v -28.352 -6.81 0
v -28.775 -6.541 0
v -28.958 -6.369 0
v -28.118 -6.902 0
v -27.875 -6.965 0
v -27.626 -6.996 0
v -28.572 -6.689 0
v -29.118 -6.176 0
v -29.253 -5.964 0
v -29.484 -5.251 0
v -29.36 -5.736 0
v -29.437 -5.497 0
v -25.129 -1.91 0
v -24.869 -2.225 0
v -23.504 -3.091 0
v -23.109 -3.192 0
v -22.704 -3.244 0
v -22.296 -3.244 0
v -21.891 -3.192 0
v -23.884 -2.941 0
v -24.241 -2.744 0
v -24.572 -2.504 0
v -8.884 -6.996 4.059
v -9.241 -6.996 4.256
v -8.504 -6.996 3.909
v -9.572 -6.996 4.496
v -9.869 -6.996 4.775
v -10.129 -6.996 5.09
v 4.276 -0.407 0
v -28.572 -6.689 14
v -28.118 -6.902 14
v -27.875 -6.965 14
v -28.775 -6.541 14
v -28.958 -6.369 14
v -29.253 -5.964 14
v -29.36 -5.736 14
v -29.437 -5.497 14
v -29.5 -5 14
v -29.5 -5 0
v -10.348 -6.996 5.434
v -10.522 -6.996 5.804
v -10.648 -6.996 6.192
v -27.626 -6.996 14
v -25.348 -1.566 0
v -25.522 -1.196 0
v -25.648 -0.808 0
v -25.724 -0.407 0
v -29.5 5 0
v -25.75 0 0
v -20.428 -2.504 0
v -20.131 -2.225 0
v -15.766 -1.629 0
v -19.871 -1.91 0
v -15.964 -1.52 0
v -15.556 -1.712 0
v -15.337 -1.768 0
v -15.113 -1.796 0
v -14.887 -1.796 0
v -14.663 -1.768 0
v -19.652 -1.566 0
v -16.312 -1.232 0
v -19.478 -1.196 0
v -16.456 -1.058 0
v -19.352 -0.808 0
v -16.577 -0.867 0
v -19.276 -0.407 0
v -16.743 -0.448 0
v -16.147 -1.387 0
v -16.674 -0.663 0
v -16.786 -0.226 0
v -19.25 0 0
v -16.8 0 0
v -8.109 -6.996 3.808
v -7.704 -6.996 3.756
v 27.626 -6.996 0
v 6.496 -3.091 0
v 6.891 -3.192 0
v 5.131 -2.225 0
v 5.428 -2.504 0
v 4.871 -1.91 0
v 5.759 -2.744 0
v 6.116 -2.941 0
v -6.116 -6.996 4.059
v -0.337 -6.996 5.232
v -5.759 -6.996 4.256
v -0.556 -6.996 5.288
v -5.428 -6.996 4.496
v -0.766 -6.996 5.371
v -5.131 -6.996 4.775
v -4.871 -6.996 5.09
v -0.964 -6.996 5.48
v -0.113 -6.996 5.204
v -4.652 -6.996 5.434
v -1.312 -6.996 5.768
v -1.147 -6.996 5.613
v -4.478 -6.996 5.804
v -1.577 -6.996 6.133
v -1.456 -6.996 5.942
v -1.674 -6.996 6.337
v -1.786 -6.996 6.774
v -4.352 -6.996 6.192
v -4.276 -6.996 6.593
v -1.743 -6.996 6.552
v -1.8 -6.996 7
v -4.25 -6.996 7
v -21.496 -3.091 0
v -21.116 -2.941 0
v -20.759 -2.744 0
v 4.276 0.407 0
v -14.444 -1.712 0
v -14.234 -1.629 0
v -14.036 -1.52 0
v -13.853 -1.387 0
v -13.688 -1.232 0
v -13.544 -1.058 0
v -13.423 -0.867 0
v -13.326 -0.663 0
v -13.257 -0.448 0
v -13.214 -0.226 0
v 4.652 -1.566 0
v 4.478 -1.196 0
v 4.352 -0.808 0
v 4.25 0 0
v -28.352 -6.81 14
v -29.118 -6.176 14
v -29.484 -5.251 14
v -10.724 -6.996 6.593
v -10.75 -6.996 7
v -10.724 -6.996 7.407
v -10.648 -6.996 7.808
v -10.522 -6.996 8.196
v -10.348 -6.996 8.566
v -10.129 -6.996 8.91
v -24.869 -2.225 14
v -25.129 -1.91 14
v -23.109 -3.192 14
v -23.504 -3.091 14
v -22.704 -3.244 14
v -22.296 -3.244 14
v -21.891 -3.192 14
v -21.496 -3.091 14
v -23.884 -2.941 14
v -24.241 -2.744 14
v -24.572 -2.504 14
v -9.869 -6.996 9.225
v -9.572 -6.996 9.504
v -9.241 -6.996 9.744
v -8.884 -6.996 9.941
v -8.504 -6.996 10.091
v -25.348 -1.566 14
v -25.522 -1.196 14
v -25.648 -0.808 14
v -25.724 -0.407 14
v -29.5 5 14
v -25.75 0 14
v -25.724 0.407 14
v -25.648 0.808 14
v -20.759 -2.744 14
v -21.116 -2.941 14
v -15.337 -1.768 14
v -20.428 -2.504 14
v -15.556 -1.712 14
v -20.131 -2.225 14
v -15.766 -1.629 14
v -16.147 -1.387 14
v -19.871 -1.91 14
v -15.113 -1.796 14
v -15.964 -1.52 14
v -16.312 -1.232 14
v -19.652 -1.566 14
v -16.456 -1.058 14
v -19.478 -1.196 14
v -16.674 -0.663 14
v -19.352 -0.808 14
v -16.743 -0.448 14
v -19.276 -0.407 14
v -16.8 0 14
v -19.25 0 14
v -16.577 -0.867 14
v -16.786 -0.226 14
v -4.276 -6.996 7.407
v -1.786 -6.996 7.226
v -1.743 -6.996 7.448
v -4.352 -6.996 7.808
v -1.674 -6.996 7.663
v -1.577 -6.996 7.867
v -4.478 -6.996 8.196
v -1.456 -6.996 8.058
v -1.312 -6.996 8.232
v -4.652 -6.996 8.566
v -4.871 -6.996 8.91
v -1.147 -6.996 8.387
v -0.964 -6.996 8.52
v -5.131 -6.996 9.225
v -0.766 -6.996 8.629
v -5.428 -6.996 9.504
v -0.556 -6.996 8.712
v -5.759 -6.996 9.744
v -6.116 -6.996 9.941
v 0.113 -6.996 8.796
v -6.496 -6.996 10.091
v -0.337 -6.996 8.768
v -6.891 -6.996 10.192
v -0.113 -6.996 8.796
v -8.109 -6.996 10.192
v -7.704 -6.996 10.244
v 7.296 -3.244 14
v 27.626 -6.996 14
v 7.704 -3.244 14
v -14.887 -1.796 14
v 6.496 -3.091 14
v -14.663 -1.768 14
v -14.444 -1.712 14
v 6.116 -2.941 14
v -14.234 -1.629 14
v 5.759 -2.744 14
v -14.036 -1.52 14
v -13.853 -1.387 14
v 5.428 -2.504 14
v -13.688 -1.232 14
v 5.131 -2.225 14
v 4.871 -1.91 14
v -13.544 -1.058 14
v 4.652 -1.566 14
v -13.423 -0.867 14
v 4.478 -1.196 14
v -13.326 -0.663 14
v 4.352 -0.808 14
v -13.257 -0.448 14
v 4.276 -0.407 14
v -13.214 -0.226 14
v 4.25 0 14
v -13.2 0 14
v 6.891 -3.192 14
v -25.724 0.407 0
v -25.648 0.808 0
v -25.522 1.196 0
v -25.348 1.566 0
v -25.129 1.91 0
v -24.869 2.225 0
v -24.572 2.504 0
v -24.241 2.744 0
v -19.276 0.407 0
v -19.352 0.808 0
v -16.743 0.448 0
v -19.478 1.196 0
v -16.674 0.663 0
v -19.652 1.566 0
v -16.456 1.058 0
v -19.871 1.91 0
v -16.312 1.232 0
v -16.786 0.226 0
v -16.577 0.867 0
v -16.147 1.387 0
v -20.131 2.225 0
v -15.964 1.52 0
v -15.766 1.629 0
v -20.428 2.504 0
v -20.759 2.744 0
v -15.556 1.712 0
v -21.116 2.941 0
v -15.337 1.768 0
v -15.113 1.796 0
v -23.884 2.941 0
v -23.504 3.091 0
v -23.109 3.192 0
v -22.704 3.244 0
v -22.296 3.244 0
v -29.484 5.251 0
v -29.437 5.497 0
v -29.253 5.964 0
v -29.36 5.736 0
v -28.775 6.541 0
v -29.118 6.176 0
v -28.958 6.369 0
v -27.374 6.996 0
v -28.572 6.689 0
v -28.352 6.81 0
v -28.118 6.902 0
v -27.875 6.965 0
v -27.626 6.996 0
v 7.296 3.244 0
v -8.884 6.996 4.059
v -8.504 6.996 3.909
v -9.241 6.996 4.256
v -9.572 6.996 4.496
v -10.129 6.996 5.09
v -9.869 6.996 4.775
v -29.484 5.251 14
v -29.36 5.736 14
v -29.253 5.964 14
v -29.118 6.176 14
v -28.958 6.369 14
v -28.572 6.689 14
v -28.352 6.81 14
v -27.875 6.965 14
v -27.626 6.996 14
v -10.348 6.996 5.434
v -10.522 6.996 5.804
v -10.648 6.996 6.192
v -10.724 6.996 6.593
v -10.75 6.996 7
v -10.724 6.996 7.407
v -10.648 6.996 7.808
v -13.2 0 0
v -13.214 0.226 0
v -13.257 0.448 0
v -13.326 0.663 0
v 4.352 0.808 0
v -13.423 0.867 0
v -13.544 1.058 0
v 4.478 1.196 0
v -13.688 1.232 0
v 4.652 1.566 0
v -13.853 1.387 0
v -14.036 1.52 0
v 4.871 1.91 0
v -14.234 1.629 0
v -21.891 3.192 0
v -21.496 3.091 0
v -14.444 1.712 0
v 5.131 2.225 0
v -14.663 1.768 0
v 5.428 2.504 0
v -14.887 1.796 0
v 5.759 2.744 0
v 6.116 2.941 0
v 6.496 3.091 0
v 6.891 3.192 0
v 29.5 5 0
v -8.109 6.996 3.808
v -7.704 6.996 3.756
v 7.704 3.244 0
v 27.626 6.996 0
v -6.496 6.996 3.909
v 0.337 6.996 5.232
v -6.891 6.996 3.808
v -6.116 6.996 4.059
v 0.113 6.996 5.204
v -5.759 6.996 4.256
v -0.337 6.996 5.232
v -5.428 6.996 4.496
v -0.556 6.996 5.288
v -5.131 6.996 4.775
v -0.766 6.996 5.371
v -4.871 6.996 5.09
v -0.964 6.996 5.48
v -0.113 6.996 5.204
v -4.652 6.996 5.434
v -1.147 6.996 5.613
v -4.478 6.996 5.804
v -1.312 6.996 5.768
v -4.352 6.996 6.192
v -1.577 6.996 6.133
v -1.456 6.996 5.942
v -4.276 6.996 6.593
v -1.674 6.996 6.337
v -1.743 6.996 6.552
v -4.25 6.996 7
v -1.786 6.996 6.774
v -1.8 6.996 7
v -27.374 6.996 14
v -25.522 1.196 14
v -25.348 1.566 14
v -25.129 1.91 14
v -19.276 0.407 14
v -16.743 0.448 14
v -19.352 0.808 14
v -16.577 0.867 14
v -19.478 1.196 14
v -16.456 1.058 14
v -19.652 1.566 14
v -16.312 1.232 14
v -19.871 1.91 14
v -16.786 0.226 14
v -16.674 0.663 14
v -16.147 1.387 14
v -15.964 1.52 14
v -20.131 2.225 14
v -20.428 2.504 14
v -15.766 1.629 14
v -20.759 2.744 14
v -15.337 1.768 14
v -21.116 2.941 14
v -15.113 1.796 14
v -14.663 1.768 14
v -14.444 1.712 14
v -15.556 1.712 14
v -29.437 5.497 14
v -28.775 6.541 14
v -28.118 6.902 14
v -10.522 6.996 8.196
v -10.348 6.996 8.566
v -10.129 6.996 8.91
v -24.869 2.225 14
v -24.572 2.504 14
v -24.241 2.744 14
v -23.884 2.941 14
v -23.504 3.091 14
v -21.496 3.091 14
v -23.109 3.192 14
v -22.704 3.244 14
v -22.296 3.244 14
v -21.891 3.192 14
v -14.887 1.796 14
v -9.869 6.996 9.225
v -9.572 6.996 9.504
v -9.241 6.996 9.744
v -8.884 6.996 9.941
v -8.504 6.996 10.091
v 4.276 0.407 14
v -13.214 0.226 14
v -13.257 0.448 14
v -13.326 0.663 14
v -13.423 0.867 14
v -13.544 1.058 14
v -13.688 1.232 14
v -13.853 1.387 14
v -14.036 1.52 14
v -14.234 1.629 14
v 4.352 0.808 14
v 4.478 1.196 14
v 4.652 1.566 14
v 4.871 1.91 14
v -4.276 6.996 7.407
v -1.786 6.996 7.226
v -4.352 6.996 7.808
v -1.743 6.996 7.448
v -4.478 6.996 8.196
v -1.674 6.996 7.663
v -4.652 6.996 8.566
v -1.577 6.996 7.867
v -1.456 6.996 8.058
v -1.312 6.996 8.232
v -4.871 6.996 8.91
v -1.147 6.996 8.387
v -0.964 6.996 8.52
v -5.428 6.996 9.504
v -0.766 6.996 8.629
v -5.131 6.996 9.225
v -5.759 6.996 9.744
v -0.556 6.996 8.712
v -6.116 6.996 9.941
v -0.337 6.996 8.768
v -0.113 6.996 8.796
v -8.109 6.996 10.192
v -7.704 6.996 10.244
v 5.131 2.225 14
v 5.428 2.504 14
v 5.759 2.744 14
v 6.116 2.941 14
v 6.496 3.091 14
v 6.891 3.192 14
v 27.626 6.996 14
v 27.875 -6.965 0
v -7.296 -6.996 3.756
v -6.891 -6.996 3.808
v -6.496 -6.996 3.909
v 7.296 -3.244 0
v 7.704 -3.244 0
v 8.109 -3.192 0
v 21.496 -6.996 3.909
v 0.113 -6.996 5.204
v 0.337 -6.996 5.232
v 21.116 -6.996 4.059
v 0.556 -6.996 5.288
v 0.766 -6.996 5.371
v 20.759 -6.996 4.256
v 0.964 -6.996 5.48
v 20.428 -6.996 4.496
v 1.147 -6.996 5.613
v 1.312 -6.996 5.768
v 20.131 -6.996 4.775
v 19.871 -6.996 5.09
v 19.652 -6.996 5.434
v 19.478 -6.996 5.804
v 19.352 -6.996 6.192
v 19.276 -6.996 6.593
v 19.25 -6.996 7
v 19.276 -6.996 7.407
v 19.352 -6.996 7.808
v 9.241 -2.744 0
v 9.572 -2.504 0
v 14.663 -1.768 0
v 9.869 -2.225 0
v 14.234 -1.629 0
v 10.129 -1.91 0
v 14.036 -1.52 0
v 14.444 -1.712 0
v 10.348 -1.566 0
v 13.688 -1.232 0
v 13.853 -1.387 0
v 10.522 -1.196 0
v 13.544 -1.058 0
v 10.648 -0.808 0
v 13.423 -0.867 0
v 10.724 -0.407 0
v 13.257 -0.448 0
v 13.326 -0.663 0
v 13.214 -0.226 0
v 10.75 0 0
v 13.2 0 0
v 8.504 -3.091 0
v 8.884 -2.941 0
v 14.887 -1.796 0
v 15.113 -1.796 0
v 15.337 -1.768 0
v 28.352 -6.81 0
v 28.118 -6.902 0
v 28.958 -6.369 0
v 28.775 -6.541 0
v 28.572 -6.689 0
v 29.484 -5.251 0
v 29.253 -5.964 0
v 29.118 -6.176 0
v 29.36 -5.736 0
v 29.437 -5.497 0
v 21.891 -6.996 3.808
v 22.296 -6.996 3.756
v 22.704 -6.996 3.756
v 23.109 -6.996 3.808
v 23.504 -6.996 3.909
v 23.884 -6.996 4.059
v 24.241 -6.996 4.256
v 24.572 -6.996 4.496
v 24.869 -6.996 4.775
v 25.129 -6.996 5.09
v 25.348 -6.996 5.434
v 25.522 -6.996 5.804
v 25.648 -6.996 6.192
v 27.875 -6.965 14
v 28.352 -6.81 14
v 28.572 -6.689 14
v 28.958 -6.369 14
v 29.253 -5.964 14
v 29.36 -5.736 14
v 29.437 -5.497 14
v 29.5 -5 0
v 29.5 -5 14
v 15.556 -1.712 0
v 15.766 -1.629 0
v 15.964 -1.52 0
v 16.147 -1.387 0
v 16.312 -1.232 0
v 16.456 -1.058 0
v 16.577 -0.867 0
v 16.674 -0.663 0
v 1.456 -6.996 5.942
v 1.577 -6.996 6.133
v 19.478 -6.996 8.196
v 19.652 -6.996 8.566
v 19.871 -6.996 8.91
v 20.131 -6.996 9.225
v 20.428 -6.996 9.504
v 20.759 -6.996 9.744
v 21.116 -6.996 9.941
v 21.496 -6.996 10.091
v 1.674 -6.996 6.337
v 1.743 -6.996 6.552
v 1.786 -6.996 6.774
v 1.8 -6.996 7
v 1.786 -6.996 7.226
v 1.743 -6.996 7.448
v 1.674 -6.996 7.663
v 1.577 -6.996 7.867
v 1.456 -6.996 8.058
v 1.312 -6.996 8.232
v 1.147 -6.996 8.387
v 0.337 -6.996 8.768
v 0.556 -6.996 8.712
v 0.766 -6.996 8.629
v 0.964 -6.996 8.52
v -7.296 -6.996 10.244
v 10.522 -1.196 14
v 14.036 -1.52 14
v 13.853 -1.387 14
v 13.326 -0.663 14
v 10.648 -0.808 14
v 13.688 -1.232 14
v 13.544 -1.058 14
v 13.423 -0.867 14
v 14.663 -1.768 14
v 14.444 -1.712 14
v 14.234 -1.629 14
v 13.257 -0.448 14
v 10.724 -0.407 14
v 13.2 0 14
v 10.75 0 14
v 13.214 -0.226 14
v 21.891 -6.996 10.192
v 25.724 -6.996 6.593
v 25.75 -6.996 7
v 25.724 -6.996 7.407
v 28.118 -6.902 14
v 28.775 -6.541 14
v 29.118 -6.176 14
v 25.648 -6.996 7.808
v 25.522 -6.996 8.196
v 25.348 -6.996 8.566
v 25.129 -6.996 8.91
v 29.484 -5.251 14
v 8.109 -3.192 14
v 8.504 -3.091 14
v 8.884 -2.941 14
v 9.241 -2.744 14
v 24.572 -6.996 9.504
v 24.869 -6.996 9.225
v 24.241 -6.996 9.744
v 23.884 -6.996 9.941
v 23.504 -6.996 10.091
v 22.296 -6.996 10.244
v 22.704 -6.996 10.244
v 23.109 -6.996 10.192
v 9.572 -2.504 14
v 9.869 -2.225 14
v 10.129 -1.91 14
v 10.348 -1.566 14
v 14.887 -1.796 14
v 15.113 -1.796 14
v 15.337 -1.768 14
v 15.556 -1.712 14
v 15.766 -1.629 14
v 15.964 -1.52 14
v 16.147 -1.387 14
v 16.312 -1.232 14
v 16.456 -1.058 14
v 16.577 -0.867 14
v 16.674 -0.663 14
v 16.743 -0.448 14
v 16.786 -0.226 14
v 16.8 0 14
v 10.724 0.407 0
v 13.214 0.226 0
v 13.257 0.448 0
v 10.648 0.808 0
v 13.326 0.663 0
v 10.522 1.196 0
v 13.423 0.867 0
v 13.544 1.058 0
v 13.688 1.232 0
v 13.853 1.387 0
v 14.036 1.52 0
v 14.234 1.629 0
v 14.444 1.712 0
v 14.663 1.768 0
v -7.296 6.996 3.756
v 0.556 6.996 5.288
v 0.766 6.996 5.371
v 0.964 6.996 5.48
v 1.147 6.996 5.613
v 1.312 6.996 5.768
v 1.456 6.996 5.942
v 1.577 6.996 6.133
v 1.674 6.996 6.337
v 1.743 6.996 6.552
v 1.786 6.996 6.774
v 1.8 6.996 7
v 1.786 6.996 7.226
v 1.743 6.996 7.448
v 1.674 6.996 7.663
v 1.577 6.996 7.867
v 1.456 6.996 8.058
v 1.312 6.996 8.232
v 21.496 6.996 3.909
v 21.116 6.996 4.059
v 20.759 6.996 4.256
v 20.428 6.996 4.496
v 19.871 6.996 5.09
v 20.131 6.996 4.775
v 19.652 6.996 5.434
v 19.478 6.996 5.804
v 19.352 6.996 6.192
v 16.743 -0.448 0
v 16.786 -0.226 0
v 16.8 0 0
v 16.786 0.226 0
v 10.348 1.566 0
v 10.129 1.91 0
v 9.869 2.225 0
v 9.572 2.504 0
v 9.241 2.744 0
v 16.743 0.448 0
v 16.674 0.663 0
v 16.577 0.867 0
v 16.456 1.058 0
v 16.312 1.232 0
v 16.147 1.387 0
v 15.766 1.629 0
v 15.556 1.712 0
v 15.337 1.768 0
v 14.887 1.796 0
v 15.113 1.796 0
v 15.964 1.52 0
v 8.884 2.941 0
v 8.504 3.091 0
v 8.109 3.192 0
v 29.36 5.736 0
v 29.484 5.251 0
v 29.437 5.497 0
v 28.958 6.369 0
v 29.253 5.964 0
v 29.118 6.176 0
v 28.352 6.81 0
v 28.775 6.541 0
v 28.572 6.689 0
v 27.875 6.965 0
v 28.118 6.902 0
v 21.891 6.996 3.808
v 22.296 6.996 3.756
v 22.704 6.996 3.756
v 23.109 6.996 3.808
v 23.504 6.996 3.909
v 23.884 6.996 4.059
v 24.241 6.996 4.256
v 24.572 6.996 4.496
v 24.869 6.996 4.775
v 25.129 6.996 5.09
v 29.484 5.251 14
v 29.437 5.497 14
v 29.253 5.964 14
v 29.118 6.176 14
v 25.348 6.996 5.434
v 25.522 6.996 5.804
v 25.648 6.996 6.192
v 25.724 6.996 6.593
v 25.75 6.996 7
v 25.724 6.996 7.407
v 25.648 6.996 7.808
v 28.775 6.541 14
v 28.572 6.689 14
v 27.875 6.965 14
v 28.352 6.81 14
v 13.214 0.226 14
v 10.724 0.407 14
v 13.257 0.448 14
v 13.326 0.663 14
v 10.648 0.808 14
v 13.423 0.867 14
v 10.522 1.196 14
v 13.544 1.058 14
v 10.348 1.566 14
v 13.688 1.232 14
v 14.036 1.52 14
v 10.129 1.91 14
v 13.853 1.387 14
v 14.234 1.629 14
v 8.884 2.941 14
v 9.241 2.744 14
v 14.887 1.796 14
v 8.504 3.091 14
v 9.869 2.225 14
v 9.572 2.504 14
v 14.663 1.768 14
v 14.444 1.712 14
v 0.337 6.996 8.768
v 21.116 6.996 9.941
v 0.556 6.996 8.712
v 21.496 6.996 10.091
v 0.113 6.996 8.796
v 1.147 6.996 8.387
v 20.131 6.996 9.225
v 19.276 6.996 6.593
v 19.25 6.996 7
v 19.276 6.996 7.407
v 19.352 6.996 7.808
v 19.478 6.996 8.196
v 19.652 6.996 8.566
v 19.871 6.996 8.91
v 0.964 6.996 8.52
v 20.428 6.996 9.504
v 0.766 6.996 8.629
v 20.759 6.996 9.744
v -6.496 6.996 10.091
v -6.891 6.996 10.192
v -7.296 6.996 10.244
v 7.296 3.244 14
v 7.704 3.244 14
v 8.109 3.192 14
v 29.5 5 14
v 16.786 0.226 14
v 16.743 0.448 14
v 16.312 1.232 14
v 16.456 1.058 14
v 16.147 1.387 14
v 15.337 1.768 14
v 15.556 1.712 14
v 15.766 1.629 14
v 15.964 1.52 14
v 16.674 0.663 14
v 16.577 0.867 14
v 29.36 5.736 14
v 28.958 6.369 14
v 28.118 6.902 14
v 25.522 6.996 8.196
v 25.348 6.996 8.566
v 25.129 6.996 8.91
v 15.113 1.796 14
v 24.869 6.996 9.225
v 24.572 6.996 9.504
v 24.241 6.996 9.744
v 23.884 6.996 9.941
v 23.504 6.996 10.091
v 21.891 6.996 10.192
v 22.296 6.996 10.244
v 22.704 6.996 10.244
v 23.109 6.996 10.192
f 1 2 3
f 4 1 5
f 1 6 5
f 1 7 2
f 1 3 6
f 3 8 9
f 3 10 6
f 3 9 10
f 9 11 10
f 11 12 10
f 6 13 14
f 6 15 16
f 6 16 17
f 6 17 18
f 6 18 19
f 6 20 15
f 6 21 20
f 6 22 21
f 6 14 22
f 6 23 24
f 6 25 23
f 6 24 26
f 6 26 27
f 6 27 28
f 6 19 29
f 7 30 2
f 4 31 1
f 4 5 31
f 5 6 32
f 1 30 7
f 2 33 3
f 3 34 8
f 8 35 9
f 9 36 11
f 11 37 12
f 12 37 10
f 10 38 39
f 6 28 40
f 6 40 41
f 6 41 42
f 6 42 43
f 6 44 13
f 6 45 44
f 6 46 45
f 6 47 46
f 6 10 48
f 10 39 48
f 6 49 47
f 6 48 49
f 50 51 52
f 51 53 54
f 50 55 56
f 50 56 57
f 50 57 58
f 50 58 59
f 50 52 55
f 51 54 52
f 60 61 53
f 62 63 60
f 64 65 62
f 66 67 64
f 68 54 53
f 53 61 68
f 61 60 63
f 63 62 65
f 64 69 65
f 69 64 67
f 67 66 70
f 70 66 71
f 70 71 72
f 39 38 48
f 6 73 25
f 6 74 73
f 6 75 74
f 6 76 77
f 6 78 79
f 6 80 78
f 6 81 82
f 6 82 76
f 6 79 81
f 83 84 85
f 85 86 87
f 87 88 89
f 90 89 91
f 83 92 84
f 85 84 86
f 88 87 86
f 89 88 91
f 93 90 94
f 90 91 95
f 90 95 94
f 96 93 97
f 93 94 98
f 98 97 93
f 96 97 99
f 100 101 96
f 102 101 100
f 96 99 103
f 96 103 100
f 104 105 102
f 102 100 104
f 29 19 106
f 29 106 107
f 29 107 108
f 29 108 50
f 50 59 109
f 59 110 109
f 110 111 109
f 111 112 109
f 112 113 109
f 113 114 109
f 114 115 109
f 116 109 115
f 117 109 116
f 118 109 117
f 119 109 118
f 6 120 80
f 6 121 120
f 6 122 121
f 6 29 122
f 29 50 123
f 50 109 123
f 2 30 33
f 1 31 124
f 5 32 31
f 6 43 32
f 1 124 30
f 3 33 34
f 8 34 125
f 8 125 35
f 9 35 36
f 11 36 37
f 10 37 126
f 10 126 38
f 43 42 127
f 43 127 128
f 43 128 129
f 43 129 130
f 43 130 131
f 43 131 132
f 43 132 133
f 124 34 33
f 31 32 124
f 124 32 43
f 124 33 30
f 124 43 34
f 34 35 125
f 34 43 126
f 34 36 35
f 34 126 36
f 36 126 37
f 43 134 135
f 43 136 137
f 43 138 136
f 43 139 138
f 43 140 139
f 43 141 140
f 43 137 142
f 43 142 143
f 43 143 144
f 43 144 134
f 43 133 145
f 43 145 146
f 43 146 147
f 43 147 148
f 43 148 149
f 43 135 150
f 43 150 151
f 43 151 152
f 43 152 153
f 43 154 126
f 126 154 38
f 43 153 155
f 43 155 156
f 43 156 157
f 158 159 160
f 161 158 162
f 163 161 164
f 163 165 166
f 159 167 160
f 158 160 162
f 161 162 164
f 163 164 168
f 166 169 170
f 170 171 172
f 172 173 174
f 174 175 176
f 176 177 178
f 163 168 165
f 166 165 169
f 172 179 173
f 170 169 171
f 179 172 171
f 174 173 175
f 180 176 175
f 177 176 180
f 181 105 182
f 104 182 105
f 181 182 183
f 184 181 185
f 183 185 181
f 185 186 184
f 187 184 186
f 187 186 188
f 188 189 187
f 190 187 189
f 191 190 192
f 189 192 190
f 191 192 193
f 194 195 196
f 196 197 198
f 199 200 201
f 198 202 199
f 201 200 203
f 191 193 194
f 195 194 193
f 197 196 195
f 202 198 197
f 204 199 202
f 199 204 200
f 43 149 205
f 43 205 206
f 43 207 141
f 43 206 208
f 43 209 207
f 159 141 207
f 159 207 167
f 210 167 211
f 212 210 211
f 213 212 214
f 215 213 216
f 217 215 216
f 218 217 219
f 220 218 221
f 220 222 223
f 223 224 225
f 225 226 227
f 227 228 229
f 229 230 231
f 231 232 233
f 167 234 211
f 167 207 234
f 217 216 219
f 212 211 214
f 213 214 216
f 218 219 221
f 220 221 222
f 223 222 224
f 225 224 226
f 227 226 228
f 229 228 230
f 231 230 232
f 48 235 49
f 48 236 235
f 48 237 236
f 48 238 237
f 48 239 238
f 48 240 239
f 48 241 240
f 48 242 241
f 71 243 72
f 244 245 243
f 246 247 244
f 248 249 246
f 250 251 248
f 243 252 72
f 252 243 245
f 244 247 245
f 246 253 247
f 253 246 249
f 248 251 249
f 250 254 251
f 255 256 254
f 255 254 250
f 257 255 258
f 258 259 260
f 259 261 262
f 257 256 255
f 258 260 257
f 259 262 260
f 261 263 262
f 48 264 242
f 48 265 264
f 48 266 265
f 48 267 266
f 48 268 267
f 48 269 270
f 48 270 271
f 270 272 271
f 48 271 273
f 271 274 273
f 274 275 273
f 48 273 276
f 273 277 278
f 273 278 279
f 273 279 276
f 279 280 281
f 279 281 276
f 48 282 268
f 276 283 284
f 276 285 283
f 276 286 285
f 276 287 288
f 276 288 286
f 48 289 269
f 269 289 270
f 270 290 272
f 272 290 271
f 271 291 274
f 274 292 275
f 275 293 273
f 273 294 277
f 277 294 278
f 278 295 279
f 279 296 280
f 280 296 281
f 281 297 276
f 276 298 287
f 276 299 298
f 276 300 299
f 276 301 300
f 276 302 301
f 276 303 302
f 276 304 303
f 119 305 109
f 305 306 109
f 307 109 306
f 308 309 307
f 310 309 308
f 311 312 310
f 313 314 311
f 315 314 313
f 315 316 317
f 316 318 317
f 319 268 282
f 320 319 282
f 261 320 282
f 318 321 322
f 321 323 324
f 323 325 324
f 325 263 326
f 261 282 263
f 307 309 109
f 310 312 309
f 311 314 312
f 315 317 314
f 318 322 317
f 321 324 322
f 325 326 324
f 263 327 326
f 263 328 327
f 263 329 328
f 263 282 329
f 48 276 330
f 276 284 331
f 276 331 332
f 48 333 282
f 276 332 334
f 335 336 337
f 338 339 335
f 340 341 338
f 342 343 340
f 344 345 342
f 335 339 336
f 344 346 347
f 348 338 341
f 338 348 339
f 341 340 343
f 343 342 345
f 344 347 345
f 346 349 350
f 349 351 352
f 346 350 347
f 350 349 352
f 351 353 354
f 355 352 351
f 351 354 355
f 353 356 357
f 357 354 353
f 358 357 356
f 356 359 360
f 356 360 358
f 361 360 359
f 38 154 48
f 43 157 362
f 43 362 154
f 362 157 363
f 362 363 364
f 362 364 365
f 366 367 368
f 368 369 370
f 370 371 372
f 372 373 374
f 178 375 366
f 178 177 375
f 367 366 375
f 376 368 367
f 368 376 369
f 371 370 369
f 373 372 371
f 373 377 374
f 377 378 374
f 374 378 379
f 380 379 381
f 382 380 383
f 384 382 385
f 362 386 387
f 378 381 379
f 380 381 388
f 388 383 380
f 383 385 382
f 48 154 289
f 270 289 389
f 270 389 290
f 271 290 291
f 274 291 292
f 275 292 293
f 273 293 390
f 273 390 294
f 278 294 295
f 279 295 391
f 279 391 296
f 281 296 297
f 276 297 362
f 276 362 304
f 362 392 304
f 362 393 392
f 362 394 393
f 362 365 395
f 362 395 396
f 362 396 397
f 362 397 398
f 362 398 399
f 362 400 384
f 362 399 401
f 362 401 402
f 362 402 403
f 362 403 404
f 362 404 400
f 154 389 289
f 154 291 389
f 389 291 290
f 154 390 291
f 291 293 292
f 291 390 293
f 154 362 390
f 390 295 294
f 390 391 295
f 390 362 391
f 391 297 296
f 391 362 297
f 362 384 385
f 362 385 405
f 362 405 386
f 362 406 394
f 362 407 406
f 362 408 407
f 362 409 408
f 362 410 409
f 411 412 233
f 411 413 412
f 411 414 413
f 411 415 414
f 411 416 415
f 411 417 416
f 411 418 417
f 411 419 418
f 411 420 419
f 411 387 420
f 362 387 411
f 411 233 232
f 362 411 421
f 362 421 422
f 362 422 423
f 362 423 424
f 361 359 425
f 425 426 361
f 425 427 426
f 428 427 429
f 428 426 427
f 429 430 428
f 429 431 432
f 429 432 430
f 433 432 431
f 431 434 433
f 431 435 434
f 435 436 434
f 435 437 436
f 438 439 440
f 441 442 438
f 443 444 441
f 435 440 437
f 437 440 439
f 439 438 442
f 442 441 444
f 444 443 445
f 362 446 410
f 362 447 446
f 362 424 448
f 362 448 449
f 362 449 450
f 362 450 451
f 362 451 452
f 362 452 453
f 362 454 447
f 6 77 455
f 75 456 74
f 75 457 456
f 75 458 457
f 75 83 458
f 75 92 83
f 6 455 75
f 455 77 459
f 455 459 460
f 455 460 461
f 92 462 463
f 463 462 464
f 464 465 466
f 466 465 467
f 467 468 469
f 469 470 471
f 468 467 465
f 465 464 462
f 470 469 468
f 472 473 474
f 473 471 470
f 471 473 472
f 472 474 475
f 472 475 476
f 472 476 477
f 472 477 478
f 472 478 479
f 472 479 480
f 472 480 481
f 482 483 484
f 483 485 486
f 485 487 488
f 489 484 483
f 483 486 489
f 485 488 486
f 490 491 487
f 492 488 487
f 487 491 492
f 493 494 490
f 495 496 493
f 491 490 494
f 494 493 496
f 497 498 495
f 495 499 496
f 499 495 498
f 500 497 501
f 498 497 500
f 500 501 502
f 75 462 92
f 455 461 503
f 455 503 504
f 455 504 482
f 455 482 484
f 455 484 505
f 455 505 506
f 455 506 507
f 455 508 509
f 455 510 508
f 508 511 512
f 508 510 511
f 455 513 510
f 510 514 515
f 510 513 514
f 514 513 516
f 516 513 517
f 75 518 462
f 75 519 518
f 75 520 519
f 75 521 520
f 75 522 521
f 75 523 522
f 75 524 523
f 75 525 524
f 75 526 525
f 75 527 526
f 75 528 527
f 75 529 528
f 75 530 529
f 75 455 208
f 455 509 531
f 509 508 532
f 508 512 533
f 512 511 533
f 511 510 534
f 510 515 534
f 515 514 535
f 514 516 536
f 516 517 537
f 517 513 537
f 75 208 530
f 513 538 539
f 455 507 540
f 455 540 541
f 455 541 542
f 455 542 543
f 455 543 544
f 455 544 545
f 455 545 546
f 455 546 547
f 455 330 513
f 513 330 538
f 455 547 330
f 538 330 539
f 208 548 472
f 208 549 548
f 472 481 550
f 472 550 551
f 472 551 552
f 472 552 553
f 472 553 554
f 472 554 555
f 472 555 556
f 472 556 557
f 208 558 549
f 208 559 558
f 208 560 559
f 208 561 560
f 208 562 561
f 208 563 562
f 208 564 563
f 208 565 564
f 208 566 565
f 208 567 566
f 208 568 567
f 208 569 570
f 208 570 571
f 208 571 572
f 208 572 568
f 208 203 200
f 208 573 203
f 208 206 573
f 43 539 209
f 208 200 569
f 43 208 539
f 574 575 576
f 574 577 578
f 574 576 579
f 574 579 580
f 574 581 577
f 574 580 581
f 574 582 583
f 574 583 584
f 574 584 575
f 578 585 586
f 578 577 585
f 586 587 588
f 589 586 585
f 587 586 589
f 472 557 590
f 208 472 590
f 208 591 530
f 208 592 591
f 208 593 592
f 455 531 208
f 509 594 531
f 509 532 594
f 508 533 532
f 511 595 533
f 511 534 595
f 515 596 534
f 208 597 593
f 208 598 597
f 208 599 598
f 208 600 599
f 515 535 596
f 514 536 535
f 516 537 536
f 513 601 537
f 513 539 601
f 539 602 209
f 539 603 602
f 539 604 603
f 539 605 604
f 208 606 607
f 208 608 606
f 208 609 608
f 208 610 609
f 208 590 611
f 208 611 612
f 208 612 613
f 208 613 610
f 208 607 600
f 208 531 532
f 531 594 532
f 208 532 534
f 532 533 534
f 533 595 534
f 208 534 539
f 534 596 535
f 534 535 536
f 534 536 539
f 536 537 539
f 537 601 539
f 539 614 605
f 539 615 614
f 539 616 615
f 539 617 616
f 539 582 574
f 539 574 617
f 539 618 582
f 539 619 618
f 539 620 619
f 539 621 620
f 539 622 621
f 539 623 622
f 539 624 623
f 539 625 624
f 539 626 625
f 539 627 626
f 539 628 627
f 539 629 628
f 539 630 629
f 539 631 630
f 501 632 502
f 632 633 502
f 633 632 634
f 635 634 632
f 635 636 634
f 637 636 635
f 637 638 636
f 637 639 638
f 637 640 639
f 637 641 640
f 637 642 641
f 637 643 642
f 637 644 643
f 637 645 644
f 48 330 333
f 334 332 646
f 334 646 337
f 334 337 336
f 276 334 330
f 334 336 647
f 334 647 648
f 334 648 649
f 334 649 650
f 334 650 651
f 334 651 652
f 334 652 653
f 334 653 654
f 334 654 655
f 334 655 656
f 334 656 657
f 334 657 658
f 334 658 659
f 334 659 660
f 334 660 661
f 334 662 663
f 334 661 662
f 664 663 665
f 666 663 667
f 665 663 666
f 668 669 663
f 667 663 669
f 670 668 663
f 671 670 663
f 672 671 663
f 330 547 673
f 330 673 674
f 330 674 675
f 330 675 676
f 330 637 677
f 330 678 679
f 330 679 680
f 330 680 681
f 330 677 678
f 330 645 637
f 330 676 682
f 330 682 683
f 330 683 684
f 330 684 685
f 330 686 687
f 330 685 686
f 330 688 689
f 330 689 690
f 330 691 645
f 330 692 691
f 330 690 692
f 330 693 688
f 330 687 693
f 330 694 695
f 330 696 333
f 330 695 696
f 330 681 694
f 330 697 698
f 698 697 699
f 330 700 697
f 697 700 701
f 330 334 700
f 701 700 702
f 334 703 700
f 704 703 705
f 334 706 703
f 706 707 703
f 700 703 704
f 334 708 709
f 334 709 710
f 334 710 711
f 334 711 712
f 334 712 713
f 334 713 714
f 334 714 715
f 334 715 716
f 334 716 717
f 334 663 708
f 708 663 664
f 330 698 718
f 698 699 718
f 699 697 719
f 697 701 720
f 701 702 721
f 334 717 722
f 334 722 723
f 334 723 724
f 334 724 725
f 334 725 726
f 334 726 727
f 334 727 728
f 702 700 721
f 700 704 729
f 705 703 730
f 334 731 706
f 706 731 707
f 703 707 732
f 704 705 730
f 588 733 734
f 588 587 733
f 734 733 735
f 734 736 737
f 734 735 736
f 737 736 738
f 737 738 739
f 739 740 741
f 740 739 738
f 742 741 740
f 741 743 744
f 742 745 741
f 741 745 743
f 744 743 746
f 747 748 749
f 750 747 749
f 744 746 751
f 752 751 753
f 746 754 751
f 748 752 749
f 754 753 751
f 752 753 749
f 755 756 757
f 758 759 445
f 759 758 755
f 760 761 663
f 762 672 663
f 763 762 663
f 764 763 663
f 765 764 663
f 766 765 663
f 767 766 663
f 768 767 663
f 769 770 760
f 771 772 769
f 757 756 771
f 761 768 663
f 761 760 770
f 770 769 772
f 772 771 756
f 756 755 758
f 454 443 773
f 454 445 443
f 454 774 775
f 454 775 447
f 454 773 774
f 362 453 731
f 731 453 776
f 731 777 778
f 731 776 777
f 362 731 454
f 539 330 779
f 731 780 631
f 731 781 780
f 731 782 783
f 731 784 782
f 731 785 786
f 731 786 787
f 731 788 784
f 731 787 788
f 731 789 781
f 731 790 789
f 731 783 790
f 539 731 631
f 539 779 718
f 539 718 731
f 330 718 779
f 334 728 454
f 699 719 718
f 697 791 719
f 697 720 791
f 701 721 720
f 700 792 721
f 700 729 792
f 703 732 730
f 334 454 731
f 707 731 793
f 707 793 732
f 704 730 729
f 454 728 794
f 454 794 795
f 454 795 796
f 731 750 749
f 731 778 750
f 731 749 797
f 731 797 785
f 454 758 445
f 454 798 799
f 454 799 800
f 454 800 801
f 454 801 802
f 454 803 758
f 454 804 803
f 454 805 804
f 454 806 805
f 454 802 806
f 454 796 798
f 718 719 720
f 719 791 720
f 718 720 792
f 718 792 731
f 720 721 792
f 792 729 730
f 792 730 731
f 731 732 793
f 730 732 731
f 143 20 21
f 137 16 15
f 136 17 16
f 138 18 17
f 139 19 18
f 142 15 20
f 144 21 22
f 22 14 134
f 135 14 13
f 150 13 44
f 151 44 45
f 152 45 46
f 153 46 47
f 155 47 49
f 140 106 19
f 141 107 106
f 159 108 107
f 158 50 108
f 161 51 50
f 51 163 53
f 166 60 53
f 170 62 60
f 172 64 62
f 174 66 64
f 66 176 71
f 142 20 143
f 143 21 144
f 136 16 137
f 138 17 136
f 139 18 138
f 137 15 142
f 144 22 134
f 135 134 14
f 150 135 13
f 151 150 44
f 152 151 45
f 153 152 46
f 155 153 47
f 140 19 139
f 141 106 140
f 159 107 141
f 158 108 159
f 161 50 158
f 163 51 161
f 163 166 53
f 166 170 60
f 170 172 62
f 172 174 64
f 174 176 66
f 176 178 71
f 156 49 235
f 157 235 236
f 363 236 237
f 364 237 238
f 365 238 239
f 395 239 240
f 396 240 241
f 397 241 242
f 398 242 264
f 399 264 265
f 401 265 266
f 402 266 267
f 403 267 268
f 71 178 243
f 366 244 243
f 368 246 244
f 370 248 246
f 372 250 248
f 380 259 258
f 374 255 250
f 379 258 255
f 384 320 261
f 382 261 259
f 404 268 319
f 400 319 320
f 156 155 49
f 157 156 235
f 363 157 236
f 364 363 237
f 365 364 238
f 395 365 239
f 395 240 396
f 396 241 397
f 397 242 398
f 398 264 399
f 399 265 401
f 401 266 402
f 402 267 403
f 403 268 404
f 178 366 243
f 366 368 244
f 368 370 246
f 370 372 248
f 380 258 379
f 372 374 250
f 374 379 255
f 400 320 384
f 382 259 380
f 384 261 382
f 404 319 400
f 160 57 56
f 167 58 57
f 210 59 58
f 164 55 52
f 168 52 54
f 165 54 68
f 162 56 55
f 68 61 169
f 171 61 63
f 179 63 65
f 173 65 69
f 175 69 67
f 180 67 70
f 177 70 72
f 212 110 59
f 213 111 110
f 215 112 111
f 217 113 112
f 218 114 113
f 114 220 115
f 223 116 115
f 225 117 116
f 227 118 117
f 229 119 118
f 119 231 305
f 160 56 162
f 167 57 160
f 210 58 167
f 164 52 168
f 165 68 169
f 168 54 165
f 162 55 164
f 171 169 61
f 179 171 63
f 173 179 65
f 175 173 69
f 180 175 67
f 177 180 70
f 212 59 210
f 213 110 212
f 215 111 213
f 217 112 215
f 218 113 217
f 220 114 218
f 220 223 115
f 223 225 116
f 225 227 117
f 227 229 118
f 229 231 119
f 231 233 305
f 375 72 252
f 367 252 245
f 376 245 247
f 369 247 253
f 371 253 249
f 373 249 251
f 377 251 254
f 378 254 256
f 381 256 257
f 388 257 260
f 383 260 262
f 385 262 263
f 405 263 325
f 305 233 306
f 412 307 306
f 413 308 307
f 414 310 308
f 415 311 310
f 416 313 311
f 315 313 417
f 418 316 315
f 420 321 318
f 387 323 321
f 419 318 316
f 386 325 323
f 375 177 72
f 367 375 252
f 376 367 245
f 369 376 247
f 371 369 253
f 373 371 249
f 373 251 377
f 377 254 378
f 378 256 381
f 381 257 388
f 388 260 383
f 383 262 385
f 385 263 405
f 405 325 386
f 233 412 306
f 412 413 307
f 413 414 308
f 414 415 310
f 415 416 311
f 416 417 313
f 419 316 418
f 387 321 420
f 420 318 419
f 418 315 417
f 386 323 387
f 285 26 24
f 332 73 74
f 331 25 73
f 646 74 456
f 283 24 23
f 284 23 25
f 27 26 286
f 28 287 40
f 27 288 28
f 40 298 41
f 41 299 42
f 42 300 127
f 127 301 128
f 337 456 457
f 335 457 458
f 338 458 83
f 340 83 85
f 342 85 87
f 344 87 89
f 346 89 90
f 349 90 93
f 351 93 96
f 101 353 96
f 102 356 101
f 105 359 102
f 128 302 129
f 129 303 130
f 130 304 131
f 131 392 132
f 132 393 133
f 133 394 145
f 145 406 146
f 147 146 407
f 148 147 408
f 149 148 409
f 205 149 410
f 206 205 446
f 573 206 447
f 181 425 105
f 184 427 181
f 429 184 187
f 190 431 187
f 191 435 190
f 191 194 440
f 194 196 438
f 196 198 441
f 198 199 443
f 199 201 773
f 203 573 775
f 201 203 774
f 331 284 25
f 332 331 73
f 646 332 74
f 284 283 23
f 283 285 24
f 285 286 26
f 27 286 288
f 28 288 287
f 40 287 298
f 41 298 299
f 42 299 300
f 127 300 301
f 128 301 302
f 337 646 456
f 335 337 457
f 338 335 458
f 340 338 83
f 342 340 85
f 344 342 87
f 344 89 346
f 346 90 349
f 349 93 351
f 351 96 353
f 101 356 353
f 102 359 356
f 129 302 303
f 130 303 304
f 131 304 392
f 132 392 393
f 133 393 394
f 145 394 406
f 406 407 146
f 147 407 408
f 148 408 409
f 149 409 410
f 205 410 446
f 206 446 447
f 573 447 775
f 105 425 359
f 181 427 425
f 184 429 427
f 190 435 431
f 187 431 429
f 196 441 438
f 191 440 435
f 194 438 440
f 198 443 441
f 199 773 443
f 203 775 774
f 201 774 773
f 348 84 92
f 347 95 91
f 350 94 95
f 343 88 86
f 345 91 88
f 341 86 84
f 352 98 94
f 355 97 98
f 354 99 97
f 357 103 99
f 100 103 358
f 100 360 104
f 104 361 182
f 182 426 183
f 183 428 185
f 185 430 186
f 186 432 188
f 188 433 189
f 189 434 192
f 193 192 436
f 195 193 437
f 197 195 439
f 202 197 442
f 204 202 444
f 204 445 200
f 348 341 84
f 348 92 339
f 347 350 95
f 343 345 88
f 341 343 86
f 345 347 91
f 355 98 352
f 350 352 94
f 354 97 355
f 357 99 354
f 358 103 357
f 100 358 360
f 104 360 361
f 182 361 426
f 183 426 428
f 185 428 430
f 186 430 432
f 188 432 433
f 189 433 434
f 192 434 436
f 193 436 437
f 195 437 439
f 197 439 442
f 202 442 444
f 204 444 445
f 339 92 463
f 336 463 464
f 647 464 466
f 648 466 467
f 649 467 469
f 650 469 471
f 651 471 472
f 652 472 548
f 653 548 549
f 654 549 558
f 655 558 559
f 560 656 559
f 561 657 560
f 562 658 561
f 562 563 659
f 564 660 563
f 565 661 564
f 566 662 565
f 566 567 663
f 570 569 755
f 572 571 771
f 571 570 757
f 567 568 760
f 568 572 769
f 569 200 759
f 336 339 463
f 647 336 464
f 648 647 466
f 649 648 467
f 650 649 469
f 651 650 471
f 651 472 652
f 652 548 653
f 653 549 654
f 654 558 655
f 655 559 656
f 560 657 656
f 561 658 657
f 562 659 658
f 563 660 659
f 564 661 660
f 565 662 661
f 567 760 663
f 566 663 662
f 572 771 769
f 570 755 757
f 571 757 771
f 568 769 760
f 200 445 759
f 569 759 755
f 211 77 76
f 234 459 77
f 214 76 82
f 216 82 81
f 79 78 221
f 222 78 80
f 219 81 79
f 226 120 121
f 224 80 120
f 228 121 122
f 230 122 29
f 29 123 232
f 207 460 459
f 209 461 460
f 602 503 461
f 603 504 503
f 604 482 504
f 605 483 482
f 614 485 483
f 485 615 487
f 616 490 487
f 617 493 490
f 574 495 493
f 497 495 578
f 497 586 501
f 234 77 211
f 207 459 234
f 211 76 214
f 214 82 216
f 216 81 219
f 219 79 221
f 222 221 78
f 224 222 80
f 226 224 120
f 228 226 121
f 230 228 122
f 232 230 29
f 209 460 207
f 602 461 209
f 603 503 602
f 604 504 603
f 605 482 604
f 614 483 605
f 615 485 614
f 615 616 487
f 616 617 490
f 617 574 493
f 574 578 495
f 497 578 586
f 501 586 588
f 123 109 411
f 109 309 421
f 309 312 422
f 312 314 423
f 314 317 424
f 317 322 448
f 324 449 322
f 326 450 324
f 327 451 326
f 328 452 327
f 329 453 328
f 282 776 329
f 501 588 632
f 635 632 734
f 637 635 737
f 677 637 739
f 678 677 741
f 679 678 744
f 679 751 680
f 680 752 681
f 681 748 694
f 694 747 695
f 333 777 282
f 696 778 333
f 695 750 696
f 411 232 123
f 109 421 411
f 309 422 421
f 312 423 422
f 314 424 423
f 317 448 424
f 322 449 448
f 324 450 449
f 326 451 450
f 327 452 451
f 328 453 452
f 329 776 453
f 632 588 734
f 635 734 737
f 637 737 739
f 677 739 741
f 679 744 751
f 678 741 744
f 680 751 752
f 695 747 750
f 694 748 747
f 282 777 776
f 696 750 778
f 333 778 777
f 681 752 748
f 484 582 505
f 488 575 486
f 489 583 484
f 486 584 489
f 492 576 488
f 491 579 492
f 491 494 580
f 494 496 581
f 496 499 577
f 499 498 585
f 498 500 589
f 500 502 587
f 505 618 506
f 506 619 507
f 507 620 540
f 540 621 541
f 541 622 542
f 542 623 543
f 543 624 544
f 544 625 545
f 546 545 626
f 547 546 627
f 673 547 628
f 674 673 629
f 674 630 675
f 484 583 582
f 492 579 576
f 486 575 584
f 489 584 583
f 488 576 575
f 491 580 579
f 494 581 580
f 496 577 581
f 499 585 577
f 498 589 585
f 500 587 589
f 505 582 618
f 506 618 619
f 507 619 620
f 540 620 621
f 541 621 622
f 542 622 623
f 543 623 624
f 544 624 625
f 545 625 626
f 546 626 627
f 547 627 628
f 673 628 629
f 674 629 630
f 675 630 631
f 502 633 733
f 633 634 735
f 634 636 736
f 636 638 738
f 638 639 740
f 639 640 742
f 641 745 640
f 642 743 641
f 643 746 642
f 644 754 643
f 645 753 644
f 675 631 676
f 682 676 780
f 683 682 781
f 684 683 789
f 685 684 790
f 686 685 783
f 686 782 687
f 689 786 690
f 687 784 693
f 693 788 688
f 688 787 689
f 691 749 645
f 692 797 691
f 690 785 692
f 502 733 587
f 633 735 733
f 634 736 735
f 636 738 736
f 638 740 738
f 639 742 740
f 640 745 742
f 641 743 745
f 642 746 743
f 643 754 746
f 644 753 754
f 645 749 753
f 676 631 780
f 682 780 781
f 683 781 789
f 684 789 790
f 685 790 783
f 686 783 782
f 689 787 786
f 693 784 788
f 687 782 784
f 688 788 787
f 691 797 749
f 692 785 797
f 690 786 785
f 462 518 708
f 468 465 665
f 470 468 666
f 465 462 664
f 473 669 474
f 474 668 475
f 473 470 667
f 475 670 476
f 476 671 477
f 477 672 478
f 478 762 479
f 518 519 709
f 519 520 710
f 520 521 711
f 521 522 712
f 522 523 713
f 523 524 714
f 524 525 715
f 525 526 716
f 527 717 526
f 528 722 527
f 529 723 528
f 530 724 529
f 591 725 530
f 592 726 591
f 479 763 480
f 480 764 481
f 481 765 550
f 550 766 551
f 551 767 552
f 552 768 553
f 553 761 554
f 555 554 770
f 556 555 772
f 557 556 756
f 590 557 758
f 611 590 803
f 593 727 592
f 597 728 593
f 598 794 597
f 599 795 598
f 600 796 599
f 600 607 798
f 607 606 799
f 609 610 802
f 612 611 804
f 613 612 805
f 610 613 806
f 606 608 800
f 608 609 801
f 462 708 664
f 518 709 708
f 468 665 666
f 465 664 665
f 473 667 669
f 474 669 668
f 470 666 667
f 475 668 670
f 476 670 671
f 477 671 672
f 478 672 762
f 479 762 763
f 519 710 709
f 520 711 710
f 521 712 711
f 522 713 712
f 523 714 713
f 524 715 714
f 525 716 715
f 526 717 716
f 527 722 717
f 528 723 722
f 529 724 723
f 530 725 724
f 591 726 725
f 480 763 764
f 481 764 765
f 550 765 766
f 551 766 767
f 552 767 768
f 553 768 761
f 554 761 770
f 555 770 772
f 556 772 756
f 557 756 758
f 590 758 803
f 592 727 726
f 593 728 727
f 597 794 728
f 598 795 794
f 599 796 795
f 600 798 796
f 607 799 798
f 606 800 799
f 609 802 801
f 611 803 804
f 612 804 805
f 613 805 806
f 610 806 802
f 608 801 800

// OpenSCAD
$fn = 50;

difference() {
	union() {
		hull() {
			translate(v = [-27.5, 5.0, 0]) {
				cylinder(h = 14, r = 2.0);
			}
			translate(v = [27.5, 5.0, 0]) {
				cylinder(h = 14, r = 2.0);
			}
			translate(v = [-27.5, -5.0, 0]) {
				cylinder(h = 14, r = 2.0);
			}
			translate(v = [27.5, -5.0, 0]) {
				cylinder(h = 14, r = 2.0);
			}
		}
	}
	union() {
		translate(v = [-22.5, 0, -2.0]) {
			cylinder(h = 18.0, r = 3.25);
		}
		translate(v = [-15.0, 0, -2.0]) {
			cylinder(h = 18.0, r = 1.8);
		}
		translate(v = [-7.5, 9.0, 7.0]) {
			rotate(a = [90, 0, 0]) {
				cylinder(h = 18.0, r = 3.25);
			}
		}
		translate(v = [0.0, 9.0, 7.0]) {
			rotate(a = [90, 0, 0]) {
				cylinder(h = 18.0, r = 1.8);
			}
		}
		translate(v = [7.5, 0, -2.0]) {
			cylinder(h = 18.0, r = 3.25);
		}
		translate(v = [15.0, 0, -2.0]) {
			cylinder(h = 18.0, r = 1.8);
		}
		translate(v = [22.5, 9.0, 7.0]) {
			rotate(a = [90, 0, 0]) {
				cylinder(h = 18.0, r = 3.25);
			}
		}
	}
}
